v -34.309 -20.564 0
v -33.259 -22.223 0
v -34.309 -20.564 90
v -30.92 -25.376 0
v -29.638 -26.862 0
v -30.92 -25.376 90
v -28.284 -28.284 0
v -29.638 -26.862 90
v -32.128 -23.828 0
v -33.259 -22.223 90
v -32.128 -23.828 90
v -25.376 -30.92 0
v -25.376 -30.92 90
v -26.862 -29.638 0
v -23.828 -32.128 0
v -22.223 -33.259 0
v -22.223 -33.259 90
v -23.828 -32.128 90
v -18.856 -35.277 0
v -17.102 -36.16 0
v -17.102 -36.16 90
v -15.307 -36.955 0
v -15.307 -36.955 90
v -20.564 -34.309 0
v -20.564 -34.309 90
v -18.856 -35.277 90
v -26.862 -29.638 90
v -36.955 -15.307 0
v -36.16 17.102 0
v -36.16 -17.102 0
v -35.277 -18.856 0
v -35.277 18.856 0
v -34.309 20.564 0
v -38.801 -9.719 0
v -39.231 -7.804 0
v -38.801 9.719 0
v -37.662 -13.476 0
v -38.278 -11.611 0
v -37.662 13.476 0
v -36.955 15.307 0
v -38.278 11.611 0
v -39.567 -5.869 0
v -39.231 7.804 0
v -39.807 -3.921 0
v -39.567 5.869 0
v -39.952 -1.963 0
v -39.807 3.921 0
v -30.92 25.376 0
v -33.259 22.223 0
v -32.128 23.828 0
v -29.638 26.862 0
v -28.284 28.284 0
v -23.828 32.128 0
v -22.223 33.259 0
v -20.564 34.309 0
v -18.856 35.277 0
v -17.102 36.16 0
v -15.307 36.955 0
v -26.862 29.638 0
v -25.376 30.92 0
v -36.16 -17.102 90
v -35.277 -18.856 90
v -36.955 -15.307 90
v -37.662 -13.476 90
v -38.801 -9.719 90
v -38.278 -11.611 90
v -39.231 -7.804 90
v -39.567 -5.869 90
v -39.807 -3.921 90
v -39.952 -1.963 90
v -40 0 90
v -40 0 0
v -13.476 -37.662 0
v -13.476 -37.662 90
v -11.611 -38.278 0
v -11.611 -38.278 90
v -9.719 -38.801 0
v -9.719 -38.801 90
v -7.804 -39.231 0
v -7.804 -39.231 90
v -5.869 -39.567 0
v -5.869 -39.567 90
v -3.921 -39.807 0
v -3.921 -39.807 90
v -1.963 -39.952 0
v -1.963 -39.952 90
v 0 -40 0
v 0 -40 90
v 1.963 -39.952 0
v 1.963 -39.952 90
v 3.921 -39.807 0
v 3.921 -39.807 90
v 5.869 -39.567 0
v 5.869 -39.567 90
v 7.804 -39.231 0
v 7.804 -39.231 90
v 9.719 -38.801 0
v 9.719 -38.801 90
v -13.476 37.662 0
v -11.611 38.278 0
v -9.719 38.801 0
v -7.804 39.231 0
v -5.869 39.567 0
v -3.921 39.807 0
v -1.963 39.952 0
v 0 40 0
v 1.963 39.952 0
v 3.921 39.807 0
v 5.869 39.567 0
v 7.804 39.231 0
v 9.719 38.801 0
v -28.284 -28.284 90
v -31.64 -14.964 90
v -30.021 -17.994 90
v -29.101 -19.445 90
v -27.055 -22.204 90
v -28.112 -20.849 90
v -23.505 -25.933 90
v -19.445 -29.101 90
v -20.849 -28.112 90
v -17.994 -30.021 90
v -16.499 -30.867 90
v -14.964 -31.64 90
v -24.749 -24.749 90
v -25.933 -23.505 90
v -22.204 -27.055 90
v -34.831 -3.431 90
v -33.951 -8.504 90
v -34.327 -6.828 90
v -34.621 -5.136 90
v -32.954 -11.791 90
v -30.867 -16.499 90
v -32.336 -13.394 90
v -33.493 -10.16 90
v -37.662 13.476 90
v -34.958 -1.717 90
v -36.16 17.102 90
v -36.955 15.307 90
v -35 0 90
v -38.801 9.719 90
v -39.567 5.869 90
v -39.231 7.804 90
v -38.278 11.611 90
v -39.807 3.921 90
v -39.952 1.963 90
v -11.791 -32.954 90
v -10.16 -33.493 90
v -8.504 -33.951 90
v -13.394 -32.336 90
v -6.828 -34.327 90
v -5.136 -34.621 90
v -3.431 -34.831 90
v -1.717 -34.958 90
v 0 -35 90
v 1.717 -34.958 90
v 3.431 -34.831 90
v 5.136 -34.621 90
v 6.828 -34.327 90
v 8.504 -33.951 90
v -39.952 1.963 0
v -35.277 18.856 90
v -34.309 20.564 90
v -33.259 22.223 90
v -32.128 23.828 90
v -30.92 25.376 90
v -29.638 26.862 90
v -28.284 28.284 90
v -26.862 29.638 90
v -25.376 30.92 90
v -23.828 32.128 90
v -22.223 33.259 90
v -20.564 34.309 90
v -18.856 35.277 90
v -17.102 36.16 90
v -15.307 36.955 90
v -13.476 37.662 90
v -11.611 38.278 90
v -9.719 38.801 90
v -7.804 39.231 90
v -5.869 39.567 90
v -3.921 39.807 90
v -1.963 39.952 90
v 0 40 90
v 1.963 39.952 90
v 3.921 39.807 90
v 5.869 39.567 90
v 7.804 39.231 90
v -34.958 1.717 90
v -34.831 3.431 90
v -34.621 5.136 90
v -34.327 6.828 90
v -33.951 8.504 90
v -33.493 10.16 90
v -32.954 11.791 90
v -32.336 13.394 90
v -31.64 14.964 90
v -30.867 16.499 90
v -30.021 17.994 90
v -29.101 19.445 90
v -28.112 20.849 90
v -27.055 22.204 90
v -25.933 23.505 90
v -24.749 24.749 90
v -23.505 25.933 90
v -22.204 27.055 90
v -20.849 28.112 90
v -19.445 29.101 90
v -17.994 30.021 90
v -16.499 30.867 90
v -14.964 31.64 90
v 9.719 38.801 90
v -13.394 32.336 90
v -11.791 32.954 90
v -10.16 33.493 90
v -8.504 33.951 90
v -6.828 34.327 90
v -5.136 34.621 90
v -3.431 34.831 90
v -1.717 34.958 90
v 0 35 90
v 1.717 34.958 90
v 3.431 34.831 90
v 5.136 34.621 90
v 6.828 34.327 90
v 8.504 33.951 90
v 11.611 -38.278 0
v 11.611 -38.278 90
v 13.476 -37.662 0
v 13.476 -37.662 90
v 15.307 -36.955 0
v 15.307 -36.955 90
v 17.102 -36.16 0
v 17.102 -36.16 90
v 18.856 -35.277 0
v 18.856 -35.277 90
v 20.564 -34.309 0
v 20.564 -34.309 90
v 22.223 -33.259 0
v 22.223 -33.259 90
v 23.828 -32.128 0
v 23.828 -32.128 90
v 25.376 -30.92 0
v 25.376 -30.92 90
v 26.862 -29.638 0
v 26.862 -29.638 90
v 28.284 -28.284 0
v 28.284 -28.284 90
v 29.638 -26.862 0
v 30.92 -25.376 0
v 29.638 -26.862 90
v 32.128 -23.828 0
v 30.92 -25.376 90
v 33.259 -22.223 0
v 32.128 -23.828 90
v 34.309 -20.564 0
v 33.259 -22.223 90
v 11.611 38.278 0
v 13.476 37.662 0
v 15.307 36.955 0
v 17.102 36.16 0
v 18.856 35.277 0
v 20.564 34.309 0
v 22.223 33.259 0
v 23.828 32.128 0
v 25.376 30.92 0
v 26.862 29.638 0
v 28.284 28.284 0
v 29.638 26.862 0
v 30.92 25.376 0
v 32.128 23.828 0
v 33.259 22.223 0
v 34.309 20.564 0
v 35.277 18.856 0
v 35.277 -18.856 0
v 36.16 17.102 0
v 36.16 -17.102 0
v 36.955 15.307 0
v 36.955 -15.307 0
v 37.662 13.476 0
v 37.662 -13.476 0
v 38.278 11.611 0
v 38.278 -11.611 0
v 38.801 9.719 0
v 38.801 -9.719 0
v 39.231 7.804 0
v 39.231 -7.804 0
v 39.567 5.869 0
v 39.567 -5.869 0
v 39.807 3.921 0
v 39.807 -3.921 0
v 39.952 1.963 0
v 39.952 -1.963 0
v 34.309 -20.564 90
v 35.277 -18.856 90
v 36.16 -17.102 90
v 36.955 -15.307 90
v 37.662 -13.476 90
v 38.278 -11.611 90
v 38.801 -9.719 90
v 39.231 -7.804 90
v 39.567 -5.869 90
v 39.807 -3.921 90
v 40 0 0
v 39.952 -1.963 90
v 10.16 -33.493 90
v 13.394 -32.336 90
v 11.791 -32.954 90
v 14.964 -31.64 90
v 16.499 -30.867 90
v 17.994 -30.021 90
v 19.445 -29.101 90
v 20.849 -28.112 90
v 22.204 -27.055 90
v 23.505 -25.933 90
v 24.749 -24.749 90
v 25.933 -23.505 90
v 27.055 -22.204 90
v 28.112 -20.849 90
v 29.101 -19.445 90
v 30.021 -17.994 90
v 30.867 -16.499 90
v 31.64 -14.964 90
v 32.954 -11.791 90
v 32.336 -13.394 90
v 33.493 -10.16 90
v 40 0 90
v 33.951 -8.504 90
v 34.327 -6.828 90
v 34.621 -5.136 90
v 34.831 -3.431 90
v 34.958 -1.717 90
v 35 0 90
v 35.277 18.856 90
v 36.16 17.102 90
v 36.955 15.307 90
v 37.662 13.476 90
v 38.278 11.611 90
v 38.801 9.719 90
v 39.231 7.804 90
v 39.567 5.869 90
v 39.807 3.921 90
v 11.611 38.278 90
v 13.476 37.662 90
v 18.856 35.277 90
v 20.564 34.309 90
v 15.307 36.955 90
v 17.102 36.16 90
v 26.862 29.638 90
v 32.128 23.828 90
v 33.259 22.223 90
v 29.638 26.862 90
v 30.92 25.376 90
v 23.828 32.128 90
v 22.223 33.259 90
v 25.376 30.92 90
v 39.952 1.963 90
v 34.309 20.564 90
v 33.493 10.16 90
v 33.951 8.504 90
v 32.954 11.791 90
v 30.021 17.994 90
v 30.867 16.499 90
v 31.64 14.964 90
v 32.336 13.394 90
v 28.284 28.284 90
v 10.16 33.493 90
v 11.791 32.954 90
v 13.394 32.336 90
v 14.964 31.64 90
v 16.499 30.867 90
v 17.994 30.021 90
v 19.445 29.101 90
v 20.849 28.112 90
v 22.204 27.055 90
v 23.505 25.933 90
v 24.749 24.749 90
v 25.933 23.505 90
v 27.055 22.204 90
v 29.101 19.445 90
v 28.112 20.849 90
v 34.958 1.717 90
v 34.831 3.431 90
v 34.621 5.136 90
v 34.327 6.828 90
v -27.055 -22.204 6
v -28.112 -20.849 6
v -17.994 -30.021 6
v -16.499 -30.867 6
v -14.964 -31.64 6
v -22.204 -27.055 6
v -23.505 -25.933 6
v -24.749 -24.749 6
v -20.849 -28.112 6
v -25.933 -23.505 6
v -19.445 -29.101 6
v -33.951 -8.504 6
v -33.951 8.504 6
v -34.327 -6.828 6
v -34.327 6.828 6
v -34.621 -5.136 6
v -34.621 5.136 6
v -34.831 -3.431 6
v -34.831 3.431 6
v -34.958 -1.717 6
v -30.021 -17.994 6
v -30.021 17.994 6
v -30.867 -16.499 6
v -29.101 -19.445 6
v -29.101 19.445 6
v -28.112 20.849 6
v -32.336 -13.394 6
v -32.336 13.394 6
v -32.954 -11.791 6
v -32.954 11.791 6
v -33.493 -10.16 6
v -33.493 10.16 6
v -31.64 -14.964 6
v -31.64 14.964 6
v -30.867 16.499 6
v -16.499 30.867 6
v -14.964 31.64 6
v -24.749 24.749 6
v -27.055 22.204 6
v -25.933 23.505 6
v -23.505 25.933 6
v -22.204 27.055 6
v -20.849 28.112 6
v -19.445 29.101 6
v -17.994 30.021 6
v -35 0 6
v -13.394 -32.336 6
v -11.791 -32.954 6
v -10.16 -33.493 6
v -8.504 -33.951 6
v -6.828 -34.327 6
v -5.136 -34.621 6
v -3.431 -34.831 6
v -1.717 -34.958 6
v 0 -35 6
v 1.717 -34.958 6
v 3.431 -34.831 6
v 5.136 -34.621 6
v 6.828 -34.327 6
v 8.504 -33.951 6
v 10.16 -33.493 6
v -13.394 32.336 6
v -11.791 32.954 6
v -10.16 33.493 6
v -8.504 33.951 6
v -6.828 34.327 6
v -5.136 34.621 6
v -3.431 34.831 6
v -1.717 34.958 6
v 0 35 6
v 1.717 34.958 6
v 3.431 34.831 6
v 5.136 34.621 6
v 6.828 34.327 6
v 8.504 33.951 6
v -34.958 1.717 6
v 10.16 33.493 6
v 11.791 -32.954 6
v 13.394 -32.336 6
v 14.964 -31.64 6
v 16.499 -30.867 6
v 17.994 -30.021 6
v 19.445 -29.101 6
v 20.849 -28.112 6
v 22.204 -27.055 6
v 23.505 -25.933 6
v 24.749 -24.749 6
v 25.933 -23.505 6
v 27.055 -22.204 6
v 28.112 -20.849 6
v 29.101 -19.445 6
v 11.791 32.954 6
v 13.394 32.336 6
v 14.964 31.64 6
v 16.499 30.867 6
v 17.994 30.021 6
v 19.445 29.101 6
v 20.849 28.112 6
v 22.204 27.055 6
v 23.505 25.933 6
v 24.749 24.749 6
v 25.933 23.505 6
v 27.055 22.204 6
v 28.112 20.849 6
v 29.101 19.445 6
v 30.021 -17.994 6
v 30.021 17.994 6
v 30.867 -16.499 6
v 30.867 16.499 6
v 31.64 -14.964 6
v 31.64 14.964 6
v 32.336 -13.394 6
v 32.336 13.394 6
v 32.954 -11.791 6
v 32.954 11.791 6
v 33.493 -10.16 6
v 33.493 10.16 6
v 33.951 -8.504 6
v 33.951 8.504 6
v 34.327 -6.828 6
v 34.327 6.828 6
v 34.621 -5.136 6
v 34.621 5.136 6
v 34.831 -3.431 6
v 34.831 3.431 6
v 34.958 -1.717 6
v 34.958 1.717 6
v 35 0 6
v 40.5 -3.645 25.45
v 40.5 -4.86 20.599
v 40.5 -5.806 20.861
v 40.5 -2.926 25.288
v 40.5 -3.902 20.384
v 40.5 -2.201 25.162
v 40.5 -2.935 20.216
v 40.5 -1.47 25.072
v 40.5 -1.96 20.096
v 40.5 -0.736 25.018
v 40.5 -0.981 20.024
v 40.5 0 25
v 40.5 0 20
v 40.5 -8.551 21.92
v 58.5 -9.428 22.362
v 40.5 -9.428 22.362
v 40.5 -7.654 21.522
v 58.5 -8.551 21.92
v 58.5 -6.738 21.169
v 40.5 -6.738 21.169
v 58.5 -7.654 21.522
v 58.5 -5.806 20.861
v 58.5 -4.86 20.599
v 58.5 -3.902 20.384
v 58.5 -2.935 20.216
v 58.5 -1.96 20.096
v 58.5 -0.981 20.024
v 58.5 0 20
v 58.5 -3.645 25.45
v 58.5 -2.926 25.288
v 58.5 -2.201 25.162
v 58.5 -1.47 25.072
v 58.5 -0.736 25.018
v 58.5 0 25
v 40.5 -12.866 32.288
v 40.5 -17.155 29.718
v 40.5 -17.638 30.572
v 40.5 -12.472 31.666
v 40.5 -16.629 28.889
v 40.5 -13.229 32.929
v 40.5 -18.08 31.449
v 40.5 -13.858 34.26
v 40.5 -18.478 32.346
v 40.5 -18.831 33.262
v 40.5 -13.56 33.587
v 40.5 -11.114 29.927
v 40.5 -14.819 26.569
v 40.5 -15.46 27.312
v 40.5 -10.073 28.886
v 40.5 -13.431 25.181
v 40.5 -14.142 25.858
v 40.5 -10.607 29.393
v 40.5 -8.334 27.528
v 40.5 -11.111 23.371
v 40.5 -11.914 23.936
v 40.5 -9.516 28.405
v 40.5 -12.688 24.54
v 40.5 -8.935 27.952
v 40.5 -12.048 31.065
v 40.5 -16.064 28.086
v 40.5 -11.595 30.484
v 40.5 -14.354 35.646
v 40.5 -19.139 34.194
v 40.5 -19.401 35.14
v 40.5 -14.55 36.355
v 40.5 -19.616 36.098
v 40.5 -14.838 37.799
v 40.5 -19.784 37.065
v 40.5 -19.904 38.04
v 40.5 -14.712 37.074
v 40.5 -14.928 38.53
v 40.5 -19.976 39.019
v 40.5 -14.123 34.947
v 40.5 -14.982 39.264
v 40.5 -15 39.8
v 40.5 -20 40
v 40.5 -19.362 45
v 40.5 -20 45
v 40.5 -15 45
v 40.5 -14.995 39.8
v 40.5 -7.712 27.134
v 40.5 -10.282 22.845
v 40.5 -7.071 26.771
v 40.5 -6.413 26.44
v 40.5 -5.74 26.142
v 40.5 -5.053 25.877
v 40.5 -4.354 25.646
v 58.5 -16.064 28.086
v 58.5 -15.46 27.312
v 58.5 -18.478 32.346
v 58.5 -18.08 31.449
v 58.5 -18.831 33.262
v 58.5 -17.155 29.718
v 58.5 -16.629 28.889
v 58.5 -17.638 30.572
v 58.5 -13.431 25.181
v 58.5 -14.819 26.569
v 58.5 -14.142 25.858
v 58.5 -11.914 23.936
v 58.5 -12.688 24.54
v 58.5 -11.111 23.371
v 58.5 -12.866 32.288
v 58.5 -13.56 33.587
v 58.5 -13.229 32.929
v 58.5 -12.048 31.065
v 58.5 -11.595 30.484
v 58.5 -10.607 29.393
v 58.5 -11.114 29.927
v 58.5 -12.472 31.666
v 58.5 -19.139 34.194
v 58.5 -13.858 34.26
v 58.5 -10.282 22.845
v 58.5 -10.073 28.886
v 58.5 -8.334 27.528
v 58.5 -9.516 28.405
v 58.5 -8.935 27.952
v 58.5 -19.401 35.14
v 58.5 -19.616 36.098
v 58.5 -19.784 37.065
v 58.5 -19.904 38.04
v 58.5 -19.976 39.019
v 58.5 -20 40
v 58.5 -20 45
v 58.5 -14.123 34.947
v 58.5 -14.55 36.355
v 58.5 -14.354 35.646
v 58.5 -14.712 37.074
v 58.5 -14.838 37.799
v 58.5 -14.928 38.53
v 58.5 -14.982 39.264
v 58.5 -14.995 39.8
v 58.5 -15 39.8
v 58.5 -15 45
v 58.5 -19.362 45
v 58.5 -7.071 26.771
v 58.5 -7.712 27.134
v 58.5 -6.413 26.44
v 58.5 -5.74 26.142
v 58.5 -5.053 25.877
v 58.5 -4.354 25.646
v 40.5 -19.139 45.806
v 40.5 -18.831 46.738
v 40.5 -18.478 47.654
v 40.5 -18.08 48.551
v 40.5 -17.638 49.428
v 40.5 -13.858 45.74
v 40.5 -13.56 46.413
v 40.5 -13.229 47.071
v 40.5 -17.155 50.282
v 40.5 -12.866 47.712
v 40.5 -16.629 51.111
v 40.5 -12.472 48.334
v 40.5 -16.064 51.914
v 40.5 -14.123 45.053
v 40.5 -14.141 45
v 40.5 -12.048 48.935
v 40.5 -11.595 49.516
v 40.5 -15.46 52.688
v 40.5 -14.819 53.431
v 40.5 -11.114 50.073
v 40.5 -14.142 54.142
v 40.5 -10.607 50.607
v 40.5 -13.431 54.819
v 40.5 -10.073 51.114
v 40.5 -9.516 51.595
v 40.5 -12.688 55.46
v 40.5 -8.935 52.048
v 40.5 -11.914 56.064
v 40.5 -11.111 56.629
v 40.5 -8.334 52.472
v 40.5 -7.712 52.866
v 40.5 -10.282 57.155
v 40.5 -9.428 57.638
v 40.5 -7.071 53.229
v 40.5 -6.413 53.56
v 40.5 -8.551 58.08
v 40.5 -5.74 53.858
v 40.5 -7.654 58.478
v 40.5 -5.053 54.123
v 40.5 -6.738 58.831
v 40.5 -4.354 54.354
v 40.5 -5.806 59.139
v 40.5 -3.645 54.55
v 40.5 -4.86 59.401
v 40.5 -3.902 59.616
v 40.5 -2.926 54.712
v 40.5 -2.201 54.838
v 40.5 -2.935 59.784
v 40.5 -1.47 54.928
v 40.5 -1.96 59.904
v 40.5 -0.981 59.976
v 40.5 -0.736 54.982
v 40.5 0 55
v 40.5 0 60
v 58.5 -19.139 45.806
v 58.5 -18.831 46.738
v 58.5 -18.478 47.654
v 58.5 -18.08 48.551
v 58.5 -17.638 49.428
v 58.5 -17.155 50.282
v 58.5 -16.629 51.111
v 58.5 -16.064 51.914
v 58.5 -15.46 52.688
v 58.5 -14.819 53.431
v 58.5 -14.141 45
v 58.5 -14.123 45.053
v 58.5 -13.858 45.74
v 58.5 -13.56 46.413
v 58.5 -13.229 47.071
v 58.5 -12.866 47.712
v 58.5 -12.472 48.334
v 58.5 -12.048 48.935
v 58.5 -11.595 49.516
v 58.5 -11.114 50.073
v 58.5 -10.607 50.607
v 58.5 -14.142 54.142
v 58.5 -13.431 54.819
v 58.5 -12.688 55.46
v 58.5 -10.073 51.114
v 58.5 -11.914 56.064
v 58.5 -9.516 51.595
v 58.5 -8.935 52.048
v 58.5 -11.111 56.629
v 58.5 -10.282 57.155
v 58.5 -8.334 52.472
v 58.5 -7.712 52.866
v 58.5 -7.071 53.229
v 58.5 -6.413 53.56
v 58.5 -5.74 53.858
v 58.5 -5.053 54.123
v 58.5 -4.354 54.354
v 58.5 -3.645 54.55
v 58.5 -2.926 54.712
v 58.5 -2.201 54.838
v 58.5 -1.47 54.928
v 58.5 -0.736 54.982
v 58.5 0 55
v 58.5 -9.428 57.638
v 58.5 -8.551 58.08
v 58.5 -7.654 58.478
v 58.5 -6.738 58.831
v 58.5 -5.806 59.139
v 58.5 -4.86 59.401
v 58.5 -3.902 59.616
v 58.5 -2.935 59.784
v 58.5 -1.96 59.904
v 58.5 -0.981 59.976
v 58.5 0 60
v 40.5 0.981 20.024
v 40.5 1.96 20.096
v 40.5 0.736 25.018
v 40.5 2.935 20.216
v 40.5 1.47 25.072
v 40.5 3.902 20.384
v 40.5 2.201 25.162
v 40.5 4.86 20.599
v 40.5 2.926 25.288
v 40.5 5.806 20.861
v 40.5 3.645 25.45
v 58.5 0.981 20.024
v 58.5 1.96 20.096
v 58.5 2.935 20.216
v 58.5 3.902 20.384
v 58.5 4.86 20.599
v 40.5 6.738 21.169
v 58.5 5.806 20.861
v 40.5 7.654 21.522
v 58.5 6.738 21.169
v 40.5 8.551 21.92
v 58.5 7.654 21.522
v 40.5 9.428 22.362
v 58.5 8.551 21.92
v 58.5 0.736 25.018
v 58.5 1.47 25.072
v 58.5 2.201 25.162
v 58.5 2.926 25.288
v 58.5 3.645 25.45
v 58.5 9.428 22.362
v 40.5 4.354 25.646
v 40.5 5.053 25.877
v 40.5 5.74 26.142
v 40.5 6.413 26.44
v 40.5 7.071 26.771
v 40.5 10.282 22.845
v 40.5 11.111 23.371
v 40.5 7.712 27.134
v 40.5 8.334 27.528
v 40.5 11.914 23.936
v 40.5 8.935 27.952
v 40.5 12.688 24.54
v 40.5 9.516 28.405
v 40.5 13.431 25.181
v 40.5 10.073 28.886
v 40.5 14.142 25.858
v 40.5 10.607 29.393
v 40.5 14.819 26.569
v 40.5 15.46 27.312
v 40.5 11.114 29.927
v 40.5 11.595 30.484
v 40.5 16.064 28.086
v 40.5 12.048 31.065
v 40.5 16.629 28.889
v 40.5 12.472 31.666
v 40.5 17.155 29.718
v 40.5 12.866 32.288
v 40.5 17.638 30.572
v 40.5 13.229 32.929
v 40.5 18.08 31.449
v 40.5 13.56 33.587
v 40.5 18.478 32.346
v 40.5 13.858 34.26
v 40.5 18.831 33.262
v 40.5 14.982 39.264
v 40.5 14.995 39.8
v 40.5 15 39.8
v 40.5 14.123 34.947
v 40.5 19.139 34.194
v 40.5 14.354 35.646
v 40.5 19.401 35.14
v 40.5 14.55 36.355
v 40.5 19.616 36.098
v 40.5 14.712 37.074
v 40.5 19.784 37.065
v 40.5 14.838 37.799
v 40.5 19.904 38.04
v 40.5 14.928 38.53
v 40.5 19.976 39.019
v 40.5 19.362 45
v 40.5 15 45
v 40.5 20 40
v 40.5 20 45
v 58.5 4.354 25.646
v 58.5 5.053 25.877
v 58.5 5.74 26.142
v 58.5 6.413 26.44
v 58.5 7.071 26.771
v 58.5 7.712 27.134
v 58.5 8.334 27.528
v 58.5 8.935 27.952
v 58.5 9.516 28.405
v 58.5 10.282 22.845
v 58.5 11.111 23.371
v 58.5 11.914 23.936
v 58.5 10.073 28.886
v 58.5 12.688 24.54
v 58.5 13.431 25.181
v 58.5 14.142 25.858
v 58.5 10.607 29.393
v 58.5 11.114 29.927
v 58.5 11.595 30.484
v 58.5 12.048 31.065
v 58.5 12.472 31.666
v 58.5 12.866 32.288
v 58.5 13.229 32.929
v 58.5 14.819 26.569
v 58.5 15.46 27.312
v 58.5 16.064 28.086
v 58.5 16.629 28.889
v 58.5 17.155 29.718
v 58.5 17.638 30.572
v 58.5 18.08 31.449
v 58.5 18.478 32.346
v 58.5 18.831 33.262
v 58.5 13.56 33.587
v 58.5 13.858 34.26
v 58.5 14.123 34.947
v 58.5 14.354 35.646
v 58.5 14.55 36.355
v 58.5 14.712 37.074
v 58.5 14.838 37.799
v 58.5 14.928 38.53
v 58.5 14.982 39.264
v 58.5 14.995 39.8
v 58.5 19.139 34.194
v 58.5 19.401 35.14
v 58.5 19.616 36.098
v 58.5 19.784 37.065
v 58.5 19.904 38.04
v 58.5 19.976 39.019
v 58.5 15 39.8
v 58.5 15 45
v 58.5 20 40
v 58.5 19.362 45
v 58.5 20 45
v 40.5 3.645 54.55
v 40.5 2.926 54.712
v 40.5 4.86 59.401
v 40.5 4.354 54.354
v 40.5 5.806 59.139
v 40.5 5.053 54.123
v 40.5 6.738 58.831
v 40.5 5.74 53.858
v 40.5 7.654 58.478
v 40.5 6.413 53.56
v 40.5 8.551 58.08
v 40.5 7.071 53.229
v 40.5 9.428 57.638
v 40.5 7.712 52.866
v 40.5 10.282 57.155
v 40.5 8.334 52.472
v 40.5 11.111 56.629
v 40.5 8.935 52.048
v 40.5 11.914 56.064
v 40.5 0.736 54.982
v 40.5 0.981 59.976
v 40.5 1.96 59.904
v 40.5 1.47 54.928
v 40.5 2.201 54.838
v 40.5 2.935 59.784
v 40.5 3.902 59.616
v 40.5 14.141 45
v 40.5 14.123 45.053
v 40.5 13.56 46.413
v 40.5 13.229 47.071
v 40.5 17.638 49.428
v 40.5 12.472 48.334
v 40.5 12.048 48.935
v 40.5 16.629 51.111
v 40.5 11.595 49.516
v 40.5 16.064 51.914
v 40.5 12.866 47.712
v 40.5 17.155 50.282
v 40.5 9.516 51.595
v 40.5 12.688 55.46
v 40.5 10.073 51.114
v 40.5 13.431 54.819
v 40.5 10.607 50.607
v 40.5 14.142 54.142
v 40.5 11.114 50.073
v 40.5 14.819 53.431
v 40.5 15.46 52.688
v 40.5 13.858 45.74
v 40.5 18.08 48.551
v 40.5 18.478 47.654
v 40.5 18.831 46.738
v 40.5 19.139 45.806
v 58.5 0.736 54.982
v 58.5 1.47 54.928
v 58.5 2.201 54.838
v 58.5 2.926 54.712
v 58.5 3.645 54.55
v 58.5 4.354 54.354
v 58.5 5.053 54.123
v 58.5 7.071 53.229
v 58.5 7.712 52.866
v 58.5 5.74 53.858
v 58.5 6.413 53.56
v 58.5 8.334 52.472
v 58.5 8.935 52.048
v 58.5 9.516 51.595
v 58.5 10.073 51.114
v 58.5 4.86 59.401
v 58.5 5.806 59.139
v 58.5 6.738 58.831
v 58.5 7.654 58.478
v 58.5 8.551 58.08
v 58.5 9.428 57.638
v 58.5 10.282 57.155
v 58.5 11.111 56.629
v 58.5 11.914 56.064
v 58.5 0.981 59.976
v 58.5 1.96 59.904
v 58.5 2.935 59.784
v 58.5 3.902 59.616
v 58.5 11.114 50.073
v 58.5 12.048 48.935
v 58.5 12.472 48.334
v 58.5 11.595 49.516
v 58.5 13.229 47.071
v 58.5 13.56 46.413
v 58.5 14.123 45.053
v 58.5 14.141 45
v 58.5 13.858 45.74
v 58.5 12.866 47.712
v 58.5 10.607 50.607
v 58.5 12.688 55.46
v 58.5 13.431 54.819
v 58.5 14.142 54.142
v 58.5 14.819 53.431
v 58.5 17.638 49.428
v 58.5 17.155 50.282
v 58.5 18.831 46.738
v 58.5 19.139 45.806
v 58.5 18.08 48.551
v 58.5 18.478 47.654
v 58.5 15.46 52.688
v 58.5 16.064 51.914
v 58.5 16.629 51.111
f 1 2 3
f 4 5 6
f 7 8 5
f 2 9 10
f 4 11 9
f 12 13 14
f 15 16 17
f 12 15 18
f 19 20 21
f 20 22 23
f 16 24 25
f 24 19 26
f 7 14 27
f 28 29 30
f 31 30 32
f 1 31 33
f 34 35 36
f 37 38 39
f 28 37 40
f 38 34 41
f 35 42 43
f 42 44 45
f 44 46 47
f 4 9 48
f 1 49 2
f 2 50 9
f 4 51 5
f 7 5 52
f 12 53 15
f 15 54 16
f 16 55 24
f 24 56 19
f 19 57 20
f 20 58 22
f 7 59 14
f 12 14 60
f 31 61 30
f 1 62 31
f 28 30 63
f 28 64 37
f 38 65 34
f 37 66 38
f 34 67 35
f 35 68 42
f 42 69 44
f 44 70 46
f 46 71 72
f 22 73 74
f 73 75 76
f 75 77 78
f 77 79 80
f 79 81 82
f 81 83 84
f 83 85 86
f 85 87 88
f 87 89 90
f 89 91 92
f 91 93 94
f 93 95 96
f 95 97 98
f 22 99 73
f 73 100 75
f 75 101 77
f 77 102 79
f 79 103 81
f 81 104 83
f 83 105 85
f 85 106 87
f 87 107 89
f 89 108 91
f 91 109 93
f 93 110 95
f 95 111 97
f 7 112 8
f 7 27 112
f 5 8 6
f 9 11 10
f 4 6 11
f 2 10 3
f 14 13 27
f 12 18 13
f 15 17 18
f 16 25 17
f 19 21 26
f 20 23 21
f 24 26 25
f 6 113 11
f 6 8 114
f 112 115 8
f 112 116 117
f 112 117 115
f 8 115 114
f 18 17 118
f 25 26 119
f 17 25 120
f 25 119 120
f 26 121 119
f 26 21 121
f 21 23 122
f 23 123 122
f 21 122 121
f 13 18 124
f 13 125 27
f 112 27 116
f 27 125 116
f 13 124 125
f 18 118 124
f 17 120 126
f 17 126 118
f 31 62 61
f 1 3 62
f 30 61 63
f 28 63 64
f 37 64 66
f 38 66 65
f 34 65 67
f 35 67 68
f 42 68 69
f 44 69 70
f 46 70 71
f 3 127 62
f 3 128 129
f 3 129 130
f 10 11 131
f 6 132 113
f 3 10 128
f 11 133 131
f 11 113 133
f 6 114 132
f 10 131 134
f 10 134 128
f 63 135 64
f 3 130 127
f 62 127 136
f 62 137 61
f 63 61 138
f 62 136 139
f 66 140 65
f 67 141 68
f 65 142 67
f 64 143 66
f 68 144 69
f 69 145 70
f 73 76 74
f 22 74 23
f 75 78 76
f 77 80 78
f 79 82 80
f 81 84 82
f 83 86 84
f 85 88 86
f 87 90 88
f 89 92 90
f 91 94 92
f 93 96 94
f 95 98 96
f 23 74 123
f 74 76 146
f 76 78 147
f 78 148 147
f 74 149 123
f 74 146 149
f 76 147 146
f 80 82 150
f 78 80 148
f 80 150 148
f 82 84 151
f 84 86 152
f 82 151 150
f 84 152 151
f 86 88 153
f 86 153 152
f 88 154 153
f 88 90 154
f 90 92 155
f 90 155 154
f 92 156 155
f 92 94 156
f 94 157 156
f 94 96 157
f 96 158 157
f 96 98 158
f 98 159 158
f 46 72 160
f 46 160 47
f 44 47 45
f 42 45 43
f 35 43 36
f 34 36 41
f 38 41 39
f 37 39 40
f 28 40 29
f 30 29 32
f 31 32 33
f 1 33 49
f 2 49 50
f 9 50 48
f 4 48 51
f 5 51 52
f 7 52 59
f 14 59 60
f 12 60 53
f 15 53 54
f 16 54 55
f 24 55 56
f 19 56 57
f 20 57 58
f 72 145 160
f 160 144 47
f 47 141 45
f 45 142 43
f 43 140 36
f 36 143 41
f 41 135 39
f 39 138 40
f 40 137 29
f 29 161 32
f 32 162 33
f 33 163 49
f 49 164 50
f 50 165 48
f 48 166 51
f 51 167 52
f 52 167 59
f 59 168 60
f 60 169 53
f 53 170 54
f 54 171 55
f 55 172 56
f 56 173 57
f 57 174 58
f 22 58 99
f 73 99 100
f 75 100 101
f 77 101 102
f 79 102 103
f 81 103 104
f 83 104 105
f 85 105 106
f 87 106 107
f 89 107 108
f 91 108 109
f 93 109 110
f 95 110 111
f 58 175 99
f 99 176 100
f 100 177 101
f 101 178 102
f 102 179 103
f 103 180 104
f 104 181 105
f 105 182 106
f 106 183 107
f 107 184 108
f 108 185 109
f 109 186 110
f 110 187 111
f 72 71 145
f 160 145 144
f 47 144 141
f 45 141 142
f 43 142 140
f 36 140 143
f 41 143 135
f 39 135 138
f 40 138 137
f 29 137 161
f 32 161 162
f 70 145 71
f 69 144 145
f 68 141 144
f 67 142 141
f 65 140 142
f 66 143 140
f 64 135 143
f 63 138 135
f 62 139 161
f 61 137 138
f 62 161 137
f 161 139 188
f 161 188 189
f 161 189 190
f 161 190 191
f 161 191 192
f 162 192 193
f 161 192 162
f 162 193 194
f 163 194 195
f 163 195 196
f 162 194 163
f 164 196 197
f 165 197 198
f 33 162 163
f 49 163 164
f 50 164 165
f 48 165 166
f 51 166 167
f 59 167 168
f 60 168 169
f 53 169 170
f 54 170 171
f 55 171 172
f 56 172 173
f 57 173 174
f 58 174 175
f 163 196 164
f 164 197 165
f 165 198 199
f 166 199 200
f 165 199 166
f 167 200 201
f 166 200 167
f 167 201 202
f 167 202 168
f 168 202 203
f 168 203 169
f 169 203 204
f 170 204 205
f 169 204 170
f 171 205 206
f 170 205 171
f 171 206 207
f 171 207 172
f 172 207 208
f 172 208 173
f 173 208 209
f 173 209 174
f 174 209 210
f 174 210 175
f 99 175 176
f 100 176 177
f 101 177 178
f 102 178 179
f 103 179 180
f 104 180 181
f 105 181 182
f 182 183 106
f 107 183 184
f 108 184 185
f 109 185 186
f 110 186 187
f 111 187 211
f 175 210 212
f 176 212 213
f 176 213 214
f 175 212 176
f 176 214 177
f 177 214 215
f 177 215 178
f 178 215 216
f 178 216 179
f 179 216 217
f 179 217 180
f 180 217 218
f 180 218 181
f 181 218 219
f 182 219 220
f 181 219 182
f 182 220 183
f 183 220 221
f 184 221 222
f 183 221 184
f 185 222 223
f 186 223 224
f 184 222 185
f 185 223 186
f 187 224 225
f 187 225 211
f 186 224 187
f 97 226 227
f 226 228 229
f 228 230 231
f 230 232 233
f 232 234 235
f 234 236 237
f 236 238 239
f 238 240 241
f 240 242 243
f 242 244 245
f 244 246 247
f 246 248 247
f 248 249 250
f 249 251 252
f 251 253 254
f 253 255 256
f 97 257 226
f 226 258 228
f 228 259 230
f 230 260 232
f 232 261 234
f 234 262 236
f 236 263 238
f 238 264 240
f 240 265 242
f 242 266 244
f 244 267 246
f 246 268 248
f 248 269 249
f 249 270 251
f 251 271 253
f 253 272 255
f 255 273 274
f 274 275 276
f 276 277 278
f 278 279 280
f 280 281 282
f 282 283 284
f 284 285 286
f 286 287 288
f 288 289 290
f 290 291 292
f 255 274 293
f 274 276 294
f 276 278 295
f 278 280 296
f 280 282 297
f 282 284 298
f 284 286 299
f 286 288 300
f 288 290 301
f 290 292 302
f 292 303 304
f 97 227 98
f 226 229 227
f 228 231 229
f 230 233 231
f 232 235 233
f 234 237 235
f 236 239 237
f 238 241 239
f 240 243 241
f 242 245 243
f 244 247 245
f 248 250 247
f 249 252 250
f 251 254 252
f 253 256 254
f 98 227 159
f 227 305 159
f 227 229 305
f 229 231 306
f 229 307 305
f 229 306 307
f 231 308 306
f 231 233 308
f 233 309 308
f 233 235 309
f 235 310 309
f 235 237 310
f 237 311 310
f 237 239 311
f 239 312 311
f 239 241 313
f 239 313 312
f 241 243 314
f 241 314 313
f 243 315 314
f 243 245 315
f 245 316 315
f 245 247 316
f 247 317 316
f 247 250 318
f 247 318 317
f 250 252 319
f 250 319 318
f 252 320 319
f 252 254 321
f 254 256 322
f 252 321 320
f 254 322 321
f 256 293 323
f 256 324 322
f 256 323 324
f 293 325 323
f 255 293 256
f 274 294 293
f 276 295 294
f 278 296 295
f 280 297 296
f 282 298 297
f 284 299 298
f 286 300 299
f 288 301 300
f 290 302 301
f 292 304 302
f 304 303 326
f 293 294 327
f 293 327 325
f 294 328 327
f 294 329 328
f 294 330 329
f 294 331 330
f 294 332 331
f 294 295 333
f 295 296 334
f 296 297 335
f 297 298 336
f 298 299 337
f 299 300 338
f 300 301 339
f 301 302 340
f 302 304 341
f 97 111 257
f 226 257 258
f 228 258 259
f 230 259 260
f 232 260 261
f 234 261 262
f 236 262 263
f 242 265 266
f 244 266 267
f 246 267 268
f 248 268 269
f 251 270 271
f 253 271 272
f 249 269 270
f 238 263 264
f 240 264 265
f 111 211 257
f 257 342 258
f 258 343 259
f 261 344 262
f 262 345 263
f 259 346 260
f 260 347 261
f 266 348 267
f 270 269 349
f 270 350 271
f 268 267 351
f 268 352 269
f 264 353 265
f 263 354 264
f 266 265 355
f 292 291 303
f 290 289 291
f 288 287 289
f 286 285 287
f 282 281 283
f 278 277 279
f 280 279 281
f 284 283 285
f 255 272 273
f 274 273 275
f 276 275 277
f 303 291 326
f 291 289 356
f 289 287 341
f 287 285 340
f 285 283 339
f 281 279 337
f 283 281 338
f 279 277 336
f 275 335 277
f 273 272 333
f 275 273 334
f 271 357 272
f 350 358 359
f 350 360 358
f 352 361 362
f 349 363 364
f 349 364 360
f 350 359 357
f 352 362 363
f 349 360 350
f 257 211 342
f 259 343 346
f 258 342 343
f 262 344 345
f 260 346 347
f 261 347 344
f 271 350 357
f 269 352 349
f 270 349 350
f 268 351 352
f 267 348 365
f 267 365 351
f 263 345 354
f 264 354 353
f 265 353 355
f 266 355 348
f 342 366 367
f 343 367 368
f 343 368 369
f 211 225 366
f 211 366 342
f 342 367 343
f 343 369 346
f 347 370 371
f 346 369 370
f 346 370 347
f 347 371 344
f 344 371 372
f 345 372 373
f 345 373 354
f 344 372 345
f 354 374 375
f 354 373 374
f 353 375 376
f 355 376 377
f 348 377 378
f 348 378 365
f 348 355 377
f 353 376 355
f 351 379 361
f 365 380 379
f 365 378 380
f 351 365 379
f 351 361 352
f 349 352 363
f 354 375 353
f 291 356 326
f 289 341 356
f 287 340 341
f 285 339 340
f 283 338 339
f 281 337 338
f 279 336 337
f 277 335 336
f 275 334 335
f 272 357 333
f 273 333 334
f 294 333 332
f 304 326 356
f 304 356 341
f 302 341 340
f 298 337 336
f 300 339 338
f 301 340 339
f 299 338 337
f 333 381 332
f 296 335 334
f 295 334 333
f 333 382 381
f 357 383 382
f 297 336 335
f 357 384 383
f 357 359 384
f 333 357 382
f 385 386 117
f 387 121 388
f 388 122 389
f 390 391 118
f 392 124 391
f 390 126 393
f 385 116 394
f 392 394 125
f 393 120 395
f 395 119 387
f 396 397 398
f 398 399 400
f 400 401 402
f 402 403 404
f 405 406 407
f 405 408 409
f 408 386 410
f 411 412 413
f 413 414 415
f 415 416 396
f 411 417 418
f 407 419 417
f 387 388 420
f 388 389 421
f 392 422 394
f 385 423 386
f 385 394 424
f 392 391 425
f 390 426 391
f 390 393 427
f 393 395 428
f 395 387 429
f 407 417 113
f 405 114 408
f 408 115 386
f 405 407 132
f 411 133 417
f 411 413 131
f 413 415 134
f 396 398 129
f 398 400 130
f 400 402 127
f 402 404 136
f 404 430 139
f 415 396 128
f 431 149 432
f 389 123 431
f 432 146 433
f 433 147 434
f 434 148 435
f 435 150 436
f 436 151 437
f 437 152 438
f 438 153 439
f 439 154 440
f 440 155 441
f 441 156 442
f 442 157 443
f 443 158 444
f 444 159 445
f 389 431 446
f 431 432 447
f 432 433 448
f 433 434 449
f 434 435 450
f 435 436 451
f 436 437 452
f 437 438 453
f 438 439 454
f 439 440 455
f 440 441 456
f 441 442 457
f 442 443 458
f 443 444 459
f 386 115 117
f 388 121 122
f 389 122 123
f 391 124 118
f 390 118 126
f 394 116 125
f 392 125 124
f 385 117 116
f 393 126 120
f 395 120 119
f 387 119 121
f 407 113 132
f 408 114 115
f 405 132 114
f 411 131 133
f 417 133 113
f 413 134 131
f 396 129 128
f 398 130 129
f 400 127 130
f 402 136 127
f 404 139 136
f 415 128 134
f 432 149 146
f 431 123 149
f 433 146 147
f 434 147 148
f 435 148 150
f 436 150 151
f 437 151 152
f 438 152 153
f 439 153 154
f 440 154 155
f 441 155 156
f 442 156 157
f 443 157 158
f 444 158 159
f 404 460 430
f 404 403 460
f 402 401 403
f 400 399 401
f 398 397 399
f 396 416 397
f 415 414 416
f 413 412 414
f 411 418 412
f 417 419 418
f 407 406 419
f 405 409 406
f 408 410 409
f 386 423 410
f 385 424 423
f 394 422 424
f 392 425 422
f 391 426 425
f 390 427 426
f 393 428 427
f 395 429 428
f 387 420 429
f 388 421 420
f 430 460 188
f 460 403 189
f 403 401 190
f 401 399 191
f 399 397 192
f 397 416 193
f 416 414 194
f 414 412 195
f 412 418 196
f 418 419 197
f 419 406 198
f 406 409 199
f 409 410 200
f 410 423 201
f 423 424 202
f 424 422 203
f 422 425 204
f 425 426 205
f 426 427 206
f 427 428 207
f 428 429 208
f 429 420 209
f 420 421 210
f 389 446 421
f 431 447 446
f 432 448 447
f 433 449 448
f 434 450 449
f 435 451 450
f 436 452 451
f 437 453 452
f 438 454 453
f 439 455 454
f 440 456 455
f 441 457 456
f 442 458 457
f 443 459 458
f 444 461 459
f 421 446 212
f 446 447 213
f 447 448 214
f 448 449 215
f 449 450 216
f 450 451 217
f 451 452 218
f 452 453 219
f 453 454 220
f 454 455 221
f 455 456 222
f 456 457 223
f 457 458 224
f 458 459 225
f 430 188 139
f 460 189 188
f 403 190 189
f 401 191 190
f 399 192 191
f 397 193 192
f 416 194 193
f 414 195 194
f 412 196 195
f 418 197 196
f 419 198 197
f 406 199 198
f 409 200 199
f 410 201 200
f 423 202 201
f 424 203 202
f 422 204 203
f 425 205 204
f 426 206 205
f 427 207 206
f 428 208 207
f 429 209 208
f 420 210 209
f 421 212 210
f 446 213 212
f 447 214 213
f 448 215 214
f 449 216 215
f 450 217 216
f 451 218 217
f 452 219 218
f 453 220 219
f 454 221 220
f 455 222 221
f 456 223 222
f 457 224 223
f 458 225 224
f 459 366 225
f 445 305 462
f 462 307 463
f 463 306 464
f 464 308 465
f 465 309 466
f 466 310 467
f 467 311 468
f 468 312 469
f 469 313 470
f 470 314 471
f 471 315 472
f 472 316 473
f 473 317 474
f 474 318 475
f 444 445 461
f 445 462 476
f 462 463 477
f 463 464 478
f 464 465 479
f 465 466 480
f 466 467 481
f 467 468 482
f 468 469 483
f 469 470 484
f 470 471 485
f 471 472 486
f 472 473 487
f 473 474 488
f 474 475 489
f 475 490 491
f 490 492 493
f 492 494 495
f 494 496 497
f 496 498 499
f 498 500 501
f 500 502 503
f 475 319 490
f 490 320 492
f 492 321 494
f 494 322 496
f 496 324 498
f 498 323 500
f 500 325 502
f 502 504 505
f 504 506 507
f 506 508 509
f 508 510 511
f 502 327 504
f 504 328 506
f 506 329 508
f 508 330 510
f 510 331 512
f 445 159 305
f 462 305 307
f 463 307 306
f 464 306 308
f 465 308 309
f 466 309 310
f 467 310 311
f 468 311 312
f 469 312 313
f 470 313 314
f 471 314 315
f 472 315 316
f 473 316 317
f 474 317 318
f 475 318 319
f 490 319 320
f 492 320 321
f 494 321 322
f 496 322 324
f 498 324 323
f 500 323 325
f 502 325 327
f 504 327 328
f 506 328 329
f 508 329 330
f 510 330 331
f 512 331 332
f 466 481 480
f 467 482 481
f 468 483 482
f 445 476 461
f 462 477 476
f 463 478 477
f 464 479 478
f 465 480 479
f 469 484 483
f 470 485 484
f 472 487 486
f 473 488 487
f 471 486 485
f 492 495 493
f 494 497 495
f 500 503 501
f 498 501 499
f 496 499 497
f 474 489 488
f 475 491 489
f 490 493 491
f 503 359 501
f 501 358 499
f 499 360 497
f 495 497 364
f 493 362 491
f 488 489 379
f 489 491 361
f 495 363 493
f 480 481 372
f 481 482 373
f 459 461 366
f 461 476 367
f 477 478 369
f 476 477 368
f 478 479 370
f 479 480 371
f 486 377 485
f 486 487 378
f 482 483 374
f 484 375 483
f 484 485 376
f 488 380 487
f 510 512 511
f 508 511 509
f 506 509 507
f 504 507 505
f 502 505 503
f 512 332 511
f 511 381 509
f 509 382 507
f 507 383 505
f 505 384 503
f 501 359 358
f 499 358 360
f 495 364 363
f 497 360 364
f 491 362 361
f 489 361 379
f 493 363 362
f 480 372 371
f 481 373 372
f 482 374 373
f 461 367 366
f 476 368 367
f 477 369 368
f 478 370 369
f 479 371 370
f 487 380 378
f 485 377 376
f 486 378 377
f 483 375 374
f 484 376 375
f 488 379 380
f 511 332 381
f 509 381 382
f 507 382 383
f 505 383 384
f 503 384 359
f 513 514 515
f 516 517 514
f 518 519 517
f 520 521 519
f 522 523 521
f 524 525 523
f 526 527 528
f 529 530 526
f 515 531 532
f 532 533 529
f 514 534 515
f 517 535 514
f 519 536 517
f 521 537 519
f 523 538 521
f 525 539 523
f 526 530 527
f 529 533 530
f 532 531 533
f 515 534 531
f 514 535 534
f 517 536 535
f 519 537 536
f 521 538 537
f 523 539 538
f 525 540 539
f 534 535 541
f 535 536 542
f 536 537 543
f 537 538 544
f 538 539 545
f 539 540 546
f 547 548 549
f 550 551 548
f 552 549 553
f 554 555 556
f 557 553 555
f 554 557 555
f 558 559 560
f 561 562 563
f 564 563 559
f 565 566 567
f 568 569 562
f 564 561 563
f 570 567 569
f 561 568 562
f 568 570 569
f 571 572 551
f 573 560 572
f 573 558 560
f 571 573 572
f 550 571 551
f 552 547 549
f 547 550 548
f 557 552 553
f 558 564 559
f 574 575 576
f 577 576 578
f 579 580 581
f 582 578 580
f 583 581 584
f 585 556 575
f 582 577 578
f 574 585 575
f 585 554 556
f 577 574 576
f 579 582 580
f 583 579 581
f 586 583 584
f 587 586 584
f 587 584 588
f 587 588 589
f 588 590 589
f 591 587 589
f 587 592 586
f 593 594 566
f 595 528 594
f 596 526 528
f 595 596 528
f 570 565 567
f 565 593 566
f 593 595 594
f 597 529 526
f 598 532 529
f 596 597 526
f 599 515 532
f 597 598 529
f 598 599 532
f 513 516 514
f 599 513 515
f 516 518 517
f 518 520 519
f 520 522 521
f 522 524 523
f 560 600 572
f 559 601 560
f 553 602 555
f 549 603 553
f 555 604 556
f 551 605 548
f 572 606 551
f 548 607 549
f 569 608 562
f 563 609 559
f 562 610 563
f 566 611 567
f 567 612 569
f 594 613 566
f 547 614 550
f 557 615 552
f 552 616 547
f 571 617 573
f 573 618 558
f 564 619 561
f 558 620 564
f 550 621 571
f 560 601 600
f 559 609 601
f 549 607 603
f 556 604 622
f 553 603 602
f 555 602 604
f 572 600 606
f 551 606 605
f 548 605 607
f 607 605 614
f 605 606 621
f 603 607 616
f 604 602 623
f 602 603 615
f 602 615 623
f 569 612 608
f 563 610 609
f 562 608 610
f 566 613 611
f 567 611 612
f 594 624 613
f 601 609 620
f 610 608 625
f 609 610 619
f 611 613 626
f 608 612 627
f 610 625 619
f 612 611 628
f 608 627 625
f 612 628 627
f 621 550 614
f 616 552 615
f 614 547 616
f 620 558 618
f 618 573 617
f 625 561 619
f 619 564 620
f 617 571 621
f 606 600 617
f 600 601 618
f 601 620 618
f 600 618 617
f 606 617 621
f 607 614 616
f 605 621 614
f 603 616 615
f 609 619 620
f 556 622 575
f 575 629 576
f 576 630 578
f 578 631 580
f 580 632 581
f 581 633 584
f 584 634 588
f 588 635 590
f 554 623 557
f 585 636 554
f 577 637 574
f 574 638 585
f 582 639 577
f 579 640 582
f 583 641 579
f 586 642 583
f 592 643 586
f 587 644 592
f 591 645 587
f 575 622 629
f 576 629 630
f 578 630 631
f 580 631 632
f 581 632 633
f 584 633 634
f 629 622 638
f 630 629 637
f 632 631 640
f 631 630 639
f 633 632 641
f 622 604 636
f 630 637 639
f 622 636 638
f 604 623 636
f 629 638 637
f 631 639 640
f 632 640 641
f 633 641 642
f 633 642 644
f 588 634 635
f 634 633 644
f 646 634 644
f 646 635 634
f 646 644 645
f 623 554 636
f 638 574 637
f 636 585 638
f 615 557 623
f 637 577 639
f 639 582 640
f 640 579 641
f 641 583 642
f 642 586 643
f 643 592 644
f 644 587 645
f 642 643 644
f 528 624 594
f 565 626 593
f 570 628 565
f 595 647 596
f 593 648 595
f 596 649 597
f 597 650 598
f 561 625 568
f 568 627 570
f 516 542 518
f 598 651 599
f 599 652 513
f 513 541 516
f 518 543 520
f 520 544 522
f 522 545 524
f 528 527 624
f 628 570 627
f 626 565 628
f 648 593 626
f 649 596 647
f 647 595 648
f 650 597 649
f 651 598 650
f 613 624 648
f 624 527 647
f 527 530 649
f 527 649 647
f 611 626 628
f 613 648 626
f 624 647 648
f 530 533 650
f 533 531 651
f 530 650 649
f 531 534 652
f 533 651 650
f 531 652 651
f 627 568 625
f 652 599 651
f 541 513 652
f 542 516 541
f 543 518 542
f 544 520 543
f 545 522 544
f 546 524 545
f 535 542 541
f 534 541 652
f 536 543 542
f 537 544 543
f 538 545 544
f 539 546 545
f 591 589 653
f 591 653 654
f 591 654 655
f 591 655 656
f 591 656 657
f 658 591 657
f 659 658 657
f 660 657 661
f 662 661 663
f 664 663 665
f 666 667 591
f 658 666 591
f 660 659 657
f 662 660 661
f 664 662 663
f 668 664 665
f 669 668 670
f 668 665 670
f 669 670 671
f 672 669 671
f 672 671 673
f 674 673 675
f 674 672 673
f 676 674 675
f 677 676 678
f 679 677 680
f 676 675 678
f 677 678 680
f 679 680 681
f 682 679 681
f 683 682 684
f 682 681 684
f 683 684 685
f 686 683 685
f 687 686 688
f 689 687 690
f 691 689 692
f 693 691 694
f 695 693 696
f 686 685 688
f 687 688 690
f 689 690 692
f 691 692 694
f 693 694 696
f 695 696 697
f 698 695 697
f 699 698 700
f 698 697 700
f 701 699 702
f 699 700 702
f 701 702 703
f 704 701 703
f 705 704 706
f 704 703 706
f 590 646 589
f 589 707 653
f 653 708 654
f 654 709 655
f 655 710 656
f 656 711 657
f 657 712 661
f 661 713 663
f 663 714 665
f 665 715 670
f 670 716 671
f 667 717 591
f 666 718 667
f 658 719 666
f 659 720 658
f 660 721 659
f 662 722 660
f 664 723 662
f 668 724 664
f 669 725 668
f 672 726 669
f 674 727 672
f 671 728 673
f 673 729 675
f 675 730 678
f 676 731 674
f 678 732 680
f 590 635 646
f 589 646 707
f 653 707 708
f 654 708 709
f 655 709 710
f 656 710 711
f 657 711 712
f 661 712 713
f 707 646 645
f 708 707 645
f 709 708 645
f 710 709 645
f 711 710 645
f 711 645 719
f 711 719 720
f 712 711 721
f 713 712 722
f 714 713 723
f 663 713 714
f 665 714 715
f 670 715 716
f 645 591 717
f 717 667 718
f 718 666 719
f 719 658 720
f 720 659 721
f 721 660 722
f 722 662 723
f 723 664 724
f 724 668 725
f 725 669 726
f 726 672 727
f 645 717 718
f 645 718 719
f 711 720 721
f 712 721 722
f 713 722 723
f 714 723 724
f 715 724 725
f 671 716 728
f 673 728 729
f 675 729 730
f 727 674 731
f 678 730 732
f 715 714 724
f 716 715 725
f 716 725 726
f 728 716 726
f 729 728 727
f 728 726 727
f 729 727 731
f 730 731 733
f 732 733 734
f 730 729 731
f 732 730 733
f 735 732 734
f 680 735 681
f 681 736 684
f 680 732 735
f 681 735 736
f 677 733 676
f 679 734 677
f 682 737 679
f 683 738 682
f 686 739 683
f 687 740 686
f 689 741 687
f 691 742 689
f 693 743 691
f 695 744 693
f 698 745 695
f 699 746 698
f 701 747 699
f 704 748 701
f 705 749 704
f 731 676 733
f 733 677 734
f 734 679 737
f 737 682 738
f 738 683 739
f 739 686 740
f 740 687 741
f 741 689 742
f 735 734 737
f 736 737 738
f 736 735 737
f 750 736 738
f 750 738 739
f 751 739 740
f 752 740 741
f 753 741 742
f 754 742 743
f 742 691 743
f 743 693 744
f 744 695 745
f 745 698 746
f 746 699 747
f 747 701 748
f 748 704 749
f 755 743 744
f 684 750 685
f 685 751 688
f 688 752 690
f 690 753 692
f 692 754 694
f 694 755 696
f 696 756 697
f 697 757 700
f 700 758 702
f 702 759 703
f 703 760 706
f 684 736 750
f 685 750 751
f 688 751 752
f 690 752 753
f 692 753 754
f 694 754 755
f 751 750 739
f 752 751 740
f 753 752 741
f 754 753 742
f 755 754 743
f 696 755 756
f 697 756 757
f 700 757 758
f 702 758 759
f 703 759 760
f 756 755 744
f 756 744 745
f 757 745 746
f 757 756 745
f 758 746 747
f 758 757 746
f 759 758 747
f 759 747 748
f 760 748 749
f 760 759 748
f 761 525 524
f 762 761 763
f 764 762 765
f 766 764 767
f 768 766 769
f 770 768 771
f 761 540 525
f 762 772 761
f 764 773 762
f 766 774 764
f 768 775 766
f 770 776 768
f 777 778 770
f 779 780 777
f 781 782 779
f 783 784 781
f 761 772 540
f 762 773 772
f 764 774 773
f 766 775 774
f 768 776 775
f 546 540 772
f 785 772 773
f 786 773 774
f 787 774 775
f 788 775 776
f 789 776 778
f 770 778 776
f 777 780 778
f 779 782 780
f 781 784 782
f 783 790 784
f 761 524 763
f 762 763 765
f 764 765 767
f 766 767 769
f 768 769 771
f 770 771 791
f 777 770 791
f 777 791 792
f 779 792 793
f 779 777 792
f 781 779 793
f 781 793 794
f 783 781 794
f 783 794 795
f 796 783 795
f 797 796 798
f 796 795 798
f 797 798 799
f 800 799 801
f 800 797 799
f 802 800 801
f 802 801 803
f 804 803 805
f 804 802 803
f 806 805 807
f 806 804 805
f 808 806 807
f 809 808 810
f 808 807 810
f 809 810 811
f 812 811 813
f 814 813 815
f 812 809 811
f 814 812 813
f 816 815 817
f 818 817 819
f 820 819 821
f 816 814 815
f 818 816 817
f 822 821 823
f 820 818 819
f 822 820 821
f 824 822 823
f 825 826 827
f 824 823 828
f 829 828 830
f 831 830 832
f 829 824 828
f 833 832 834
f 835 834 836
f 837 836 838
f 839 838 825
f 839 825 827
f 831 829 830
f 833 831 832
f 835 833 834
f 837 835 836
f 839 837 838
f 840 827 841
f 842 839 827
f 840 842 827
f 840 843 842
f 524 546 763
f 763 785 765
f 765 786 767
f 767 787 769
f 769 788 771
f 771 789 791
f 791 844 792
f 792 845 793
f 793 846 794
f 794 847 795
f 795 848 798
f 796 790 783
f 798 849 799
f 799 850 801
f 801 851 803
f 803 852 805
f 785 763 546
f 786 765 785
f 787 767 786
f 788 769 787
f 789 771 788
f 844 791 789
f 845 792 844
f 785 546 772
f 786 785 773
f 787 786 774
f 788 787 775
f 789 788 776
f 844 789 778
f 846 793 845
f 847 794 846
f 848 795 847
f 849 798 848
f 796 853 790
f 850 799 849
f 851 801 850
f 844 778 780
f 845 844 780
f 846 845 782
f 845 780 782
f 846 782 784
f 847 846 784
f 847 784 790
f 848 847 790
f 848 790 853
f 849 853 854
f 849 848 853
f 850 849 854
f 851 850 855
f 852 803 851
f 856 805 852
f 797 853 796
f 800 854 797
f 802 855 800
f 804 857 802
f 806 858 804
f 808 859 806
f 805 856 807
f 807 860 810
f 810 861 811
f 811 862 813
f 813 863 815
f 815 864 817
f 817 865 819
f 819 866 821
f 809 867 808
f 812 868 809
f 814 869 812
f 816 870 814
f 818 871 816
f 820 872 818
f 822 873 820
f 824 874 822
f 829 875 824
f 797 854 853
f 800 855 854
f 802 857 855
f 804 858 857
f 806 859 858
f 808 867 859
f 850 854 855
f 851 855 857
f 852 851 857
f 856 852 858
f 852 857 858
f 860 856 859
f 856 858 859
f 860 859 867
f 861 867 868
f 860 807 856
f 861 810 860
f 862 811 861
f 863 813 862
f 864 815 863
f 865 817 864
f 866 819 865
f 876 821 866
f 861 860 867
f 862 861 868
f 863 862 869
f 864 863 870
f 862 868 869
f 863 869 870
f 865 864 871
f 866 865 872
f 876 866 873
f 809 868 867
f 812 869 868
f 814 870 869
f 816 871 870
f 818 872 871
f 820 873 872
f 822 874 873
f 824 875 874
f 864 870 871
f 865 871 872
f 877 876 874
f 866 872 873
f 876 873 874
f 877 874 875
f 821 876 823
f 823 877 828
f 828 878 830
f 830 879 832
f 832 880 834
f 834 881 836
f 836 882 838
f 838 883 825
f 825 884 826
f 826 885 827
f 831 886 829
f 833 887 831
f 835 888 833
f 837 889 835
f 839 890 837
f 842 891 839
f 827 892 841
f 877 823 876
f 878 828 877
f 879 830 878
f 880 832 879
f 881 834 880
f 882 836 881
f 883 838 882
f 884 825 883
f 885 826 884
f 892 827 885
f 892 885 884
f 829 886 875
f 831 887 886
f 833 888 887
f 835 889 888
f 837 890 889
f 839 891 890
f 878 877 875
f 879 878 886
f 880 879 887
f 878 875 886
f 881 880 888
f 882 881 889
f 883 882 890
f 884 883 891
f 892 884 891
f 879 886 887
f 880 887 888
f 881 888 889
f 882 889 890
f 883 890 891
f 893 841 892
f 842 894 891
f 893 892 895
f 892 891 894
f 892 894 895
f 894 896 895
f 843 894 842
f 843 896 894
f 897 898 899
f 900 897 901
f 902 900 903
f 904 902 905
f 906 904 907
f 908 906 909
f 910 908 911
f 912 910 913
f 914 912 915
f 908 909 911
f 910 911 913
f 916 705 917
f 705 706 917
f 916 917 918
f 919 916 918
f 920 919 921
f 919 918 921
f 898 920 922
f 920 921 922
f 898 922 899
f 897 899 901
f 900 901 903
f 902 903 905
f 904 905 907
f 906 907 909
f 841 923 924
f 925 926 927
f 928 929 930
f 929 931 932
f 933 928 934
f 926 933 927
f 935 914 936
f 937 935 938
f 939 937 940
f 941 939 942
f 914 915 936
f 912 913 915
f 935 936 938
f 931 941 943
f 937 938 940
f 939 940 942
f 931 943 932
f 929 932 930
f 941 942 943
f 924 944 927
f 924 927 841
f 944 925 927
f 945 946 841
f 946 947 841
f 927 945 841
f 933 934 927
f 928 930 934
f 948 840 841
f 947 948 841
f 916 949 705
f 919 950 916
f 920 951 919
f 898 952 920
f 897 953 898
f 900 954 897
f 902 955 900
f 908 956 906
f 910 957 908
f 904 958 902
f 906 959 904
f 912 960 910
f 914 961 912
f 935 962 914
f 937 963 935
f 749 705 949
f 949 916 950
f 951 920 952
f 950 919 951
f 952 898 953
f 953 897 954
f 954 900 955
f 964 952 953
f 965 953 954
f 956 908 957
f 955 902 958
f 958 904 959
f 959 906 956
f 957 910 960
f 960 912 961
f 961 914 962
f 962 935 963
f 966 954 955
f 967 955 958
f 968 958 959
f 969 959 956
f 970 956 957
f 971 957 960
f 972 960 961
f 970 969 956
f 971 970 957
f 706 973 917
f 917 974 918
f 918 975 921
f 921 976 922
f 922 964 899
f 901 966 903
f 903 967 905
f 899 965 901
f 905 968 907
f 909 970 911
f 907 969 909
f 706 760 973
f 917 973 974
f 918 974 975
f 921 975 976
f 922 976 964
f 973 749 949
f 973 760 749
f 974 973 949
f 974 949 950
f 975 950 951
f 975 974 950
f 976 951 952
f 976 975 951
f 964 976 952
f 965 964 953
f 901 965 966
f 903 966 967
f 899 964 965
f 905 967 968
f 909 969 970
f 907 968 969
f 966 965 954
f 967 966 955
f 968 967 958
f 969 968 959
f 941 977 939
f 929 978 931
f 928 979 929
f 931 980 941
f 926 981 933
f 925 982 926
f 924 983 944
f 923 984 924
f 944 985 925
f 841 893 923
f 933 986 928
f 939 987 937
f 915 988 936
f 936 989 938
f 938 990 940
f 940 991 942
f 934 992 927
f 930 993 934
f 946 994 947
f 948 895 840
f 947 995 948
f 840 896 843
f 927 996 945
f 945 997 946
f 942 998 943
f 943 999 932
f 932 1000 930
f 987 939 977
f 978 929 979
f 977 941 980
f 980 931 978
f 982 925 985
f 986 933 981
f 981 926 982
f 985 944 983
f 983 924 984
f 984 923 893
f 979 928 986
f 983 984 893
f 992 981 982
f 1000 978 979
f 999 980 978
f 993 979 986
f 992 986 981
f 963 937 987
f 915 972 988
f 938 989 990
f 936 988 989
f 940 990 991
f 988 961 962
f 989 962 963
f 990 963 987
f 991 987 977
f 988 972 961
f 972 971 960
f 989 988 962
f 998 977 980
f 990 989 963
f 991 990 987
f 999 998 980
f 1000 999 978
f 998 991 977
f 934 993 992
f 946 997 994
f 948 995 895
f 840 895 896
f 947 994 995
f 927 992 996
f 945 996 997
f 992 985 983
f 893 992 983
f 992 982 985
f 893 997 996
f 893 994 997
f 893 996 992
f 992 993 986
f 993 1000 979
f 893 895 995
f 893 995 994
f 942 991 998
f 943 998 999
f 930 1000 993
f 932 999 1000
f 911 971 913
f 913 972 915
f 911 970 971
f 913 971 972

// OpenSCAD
$fn = 128;

outer_d = 80;
inner_d = 70;
height = 90;
bottom_thickness = 6;

handle_clear_w = 25;
handle_clear_h = 30;
handle_depth = 18;
handle_wall = 5;

module mug_body() {
    difference() {
        cylinder(h = height, d = outer_d);
        translate([0, 0, bottom_thickness])
            cylinder(h = height - bottom_thickness + 0.1, d = inner_d);
    }
}

module handle_solid() {
    // D-shaped solid, open toward the mug body (-X side of the handle)
    translate([outer_d/2, 0, height/2])
    rotate([0, 90, 0])
    linear_extrude(height = handle_depth)
    difference() {
        // outer profile: rectangle + semicircle on the outside
        union() {
            translate([0, - (handle_clear_h/2 + handle_wall)])
                square([handle_wall, handle_clear_h + 2*handle_wall], center = false);
            translate([handle_wall, 0])
                circle(r = (handle_clear_h/2 + handle_wall));
        }

        // inner void: rectangle + semicircle
        union() {
            translate([0, -handle_clear_h/2])
                square([handle_wall + 0.2, handle_clear_h], center = false);
            translate([handle_wall, 0])
                circle(r = handle_clear_h/2);
        }
    }
}

union() {
    mug_body();
    // Slight overlap into the body to guarantee manifold union
    translate([0.5, 0, 0])
        handle_solid();
}
